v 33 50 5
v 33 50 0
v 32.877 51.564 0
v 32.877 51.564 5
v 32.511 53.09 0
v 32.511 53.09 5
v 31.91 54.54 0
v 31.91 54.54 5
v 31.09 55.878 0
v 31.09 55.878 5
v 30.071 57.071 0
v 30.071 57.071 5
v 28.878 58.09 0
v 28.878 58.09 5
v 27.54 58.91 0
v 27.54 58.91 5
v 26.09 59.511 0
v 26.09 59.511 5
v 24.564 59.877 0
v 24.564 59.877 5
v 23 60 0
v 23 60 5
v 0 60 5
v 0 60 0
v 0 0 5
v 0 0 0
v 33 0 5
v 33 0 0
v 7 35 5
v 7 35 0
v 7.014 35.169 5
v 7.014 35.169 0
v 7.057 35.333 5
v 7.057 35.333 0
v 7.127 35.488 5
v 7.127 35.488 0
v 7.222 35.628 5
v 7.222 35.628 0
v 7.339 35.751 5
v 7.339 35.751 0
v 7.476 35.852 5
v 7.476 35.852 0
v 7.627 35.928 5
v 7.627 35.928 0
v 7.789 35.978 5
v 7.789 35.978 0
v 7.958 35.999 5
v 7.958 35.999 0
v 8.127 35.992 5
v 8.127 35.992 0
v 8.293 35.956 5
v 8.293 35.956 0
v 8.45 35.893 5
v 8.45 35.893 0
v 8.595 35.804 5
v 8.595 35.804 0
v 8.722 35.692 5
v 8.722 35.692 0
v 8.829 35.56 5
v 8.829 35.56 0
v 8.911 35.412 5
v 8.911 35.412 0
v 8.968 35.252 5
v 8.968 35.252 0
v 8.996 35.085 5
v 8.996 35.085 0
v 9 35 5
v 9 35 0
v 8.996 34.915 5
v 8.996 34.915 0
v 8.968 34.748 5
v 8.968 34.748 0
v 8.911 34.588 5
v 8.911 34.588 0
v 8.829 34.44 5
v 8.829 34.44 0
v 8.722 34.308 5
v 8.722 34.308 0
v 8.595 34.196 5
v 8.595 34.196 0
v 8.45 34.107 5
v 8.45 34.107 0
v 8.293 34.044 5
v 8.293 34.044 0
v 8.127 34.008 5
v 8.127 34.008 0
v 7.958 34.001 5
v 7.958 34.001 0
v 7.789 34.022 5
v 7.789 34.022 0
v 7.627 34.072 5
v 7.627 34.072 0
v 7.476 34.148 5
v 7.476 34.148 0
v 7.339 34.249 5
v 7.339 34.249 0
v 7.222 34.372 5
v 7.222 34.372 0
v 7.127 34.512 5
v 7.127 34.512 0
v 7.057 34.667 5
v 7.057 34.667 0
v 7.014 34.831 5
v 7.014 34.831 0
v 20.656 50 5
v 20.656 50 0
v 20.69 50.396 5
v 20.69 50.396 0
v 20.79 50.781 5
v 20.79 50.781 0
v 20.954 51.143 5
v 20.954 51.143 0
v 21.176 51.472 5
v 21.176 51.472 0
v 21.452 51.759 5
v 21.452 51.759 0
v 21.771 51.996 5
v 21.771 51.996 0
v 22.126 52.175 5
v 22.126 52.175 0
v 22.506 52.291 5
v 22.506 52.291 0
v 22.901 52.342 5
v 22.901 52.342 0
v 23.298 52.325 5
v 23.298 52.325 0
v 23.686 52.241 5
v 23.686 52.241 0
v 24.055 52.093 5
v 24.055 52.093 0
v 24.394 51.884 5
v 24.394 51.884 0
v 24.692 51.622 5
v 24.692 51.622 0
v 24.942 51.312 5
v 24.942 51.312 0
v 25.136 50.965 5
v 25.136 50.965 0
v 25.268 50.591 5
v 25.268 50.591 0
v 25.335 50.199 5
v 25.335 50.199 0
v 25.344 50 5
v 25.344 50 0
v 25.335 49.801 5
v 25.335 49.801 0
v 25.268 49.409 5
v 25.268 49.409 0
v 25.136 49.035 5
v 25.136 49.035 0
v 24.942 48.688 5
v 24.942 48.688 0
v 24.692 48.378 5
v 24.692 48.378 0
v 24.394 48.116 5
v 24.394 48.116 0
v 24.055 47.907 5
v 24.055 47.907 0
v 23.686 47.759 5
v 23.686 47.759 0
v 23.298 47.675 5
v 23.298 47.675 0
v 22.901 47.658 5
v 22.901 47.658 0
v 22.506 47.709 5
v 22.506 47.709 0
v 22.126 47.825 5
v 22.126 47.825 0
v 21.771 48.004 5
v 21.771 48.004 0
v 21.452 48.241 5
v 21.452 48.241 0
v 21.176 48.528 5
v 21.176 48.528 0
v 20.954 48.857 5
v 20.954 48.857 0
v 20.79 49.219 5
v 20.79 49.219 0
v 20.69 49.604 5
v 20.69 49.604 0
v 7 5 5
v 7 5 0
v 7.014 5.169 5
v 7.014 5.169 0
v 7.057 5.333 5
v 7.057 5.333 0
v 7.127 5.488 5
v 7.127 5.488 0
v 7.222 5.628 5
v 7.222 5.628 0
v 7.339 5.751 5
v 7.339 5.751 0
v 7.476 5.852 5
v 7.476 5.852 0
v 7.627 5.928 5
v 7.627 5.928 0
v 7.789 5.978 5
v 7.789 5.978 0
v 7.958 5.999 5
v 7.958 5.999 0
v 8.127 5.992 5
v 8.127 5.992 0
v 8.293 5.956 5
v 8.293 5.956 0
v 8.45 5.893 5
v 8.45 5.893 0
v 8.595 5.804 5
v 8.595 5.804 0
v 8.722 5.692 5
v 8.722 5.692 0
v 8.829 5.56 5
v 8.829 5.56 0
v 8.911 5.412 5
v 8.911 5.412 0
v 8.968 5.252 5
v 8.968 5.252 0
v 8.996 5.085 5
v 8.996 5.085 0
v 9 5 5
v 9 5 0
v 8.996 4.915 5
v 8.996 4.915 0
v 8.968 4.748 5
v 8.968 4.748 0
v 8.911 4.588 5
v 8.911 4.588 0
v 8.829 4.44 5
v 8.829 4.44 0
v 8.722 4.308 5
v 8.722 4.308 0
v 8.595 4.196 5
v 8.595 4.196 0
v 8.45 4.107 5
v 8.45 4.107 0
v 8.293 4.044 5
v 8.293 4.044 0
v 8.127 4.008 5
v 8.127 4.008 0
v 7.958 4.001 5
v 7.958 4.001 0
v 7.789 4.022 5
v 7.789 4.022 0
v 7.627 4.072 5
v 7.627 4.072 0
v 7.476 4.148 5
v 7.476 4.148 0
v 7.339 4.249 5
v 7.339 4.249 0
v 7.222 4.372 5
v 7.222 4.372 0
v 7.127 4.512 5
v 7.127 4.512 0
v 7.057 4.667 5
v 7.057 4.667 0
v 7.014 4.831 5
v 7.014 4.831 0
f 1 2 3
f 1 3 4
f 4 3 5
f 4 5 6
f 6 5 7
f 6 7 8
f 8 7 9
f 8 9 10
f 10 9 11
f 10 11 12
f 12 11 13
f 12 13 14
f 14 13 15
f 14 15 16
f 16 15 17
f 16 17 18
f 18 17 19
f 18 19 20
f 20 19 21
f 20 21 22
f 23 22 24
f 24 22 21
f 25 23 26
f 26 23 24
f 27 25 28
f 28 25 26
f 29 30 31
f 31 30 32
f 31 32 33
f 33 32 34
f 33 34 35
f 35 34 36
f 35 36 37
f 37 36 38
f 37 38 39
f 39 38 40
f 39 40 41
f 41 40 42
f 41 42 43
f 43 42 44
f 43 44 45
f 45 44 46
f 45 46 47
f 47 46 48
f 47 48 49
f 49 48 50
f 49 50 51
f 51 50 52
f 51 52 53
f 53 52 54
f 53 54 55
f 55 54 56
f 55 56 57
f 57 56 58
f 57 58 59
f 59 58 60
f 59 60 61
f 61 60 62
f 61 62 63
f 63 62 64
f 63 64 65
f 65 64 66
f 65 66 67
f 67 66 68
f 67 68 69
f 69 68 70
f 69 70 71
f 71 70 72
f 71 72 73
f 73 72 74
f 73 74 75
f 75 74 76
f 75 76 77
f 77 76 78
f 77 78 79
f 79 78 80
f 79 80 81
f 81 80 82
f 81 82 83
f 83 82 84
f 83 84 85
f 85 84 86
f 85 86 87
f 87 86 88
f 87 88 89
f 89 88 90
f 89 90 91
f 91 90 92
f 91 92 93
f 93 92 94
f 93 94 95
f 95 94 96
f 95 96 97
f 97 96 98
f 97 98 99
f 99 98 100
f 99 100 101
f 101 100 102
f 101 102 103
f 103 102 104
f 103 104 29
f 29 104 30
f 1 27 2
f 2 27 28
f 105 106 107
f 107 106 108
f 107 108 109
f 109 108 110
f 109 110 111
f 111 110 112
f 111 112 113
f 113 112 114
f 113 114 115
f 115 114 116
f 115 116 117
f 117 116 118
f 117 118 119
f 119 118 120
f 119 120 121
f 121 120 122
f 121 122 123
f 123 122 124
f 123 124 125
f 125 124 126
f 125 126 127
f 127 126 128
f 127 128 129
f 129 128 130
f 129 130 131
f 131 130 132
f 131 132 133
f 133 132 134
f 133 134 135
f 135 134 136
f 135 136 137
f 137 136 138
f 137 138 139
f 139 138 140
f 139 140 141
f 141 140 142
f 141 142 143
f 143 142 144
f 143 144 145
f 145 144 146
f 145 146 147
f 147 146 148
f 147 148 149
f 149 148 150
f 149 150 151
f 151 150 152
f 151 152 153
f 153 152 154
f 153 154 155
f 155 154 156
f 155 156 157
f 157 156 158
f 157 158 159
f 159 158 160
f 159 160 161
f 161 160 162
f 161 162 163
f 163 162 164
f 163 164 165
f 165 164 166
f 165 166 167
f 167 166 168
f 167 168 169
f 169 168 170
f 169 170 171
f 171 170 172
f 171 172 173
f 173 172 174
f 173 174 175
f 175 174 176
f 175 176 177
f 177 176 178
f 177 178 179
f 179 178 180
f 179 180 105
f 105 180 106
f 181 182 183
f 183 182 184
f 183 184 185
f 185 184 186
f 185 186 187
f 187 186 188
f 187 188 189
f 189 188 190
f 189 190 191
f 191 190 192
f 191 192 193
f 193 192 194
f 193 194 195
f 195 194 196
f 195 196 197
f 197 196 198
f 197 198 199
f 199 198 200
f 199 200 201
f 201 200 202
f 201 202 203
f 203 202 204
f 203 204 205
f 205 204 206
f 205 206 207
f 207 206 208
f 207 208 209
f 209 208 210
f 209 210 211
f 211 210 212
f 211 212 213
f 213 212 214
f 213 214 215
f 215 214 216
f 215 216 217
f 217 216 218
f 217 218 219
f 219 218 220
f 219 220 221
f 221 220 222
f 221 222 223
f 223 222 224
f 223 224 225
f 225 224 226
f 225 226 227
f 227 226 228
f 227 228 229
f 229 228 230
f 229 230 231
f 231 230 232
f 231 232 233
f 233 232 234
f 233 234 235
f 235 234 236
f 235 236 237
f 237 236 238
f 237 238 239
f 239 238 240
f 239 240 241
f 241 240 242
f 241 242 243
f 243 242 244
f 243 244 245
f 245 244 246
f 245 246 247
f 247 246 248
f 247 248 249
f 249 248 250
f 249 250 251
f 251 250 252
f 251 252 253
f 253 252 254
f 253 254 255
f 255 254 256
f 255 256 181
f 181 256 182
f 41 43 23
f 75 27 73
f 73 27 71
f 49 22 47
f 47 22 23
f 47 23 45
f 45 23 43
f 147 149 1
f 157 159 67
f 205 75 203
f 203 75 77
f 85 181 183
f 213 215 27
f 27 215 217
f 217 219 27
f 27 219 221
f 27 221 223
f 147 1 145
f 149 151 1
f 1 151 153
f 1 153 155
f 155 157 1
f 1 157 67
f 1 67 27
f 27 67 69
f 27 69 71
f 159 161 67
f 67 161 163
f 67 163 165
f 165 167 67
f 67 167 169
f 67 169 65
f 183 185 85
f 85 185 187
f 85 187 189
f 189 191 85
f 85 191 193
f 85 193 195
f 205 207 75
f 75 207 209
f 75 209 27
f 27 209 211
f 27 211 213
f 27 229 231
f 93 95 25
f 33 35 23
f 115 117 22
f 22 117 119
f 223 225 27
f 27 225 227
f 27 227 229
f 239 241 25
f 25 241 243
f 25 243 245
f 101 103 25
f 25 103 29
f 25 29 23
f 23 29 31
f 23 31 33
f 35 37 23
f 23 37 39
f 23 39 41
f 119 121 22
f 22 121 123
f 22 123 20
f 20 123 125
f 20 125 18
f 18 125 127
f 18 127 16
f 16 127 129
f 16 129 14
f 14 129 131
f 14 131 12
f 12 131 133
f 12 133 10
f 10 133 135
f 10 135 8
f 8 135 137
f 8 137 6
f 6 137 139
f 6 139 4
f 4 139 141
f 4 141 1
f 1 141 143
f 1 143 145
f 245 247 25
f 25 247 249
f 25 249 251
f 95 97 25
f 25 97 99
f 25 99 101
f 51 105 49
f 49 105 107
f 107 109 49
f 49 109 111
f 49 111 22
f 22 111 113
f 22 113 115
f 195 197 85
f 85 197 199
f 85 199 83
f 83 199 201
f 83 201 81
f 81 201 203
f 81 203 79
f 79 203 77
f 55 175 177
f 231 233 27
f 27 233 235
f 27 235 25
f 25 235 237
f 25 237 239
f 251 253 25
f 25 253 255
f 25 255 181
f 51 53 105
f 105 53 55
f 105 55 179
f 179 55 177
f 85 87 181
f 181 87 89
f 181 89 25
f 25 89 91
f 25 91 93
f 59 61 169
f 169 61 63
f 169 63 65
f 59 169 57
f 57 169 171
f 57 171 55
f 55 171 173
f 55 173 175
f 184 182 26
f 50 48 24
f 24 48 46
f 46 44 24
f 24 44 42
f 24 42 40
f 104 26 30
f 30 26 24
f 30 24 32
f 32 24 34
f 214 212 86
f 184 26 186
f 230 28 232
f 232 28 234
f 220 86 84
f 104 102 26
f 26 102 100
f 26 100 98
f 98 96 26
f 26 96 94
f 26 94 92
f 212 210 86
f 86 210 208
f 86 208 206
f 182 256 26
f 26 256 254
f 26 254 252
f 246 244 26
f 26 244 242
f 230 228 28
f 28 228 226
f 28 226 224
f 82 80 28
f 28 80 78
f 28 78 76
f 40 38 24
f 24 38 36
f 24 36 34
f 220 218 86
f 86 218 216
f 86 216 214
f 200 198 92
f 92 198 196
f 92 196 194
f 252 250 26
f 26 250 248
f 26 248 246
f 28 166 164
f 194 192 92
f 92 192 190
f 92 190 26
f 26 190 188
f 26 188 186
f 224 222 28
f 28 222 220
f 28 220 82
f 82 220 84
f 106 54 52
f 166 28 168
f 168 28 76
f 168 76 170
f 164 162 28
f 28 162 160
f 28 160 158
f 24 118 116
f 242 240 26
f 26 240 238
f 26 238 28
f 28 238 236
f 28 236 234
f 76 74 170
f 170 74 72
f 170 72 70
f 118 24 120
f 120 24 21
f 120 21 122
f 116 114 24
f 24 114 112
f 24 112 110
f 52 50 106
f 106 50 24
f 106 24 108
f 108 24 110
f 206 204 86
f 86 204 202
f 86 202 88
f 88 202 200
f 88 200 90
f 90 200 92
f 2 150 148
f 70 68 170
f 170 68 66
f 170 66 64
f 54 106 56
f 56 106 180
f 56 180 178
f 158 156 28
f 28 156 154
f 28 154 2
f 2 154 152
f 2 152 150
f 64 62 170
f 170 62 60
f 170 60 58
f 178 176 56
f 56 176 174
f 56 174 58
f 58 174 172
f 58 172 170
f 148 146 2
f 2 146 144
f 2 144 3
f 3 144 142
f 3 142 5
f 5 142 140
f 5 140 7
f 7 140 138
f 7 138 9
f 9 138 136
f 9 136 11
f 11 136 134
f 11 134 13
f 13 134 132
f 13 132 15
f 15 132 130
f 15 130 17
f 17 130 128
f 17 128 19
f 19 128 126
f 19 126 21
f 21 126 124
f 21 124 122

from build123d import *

# Parameters (mm, degrees)
CROQUIS1_R              = 2.34375
CROQUIS1_R_2            = 1
SALIENTE_EXTRUIR4_DEPTH = 5


with BuildPart() as part:
    # Croquis1 → Saliente-Extruir4 (new body)
    with BuildSketch(Plane.XY):
        with BuildLine():
            Line((0, 60), (0, 0))
            Line((0, 0), (33, 0))
            Line((33, 0), (33, 50))
            ThreePointArc((33, 50), (30.071067812, 57.071067812), (23, 60))
            Line((23, 60), (0, 60))
        make_face()
        with Locations((23, 50)):
            Circle(CROQUIS1_R, mode=Mode.SUBTRACT)
        with Locations((8, 5)):
            Circle(CROQUIS1_R_2, mode=Mode.SUBTRACT)
        with Locations((8, 35)):
            Circle(CROQUIS1_R_2, mode=Mode.SUBTRACT)
    extrude(amount=SALIENTE_EXTRUIR4_DEPTH)


solid = part.part
